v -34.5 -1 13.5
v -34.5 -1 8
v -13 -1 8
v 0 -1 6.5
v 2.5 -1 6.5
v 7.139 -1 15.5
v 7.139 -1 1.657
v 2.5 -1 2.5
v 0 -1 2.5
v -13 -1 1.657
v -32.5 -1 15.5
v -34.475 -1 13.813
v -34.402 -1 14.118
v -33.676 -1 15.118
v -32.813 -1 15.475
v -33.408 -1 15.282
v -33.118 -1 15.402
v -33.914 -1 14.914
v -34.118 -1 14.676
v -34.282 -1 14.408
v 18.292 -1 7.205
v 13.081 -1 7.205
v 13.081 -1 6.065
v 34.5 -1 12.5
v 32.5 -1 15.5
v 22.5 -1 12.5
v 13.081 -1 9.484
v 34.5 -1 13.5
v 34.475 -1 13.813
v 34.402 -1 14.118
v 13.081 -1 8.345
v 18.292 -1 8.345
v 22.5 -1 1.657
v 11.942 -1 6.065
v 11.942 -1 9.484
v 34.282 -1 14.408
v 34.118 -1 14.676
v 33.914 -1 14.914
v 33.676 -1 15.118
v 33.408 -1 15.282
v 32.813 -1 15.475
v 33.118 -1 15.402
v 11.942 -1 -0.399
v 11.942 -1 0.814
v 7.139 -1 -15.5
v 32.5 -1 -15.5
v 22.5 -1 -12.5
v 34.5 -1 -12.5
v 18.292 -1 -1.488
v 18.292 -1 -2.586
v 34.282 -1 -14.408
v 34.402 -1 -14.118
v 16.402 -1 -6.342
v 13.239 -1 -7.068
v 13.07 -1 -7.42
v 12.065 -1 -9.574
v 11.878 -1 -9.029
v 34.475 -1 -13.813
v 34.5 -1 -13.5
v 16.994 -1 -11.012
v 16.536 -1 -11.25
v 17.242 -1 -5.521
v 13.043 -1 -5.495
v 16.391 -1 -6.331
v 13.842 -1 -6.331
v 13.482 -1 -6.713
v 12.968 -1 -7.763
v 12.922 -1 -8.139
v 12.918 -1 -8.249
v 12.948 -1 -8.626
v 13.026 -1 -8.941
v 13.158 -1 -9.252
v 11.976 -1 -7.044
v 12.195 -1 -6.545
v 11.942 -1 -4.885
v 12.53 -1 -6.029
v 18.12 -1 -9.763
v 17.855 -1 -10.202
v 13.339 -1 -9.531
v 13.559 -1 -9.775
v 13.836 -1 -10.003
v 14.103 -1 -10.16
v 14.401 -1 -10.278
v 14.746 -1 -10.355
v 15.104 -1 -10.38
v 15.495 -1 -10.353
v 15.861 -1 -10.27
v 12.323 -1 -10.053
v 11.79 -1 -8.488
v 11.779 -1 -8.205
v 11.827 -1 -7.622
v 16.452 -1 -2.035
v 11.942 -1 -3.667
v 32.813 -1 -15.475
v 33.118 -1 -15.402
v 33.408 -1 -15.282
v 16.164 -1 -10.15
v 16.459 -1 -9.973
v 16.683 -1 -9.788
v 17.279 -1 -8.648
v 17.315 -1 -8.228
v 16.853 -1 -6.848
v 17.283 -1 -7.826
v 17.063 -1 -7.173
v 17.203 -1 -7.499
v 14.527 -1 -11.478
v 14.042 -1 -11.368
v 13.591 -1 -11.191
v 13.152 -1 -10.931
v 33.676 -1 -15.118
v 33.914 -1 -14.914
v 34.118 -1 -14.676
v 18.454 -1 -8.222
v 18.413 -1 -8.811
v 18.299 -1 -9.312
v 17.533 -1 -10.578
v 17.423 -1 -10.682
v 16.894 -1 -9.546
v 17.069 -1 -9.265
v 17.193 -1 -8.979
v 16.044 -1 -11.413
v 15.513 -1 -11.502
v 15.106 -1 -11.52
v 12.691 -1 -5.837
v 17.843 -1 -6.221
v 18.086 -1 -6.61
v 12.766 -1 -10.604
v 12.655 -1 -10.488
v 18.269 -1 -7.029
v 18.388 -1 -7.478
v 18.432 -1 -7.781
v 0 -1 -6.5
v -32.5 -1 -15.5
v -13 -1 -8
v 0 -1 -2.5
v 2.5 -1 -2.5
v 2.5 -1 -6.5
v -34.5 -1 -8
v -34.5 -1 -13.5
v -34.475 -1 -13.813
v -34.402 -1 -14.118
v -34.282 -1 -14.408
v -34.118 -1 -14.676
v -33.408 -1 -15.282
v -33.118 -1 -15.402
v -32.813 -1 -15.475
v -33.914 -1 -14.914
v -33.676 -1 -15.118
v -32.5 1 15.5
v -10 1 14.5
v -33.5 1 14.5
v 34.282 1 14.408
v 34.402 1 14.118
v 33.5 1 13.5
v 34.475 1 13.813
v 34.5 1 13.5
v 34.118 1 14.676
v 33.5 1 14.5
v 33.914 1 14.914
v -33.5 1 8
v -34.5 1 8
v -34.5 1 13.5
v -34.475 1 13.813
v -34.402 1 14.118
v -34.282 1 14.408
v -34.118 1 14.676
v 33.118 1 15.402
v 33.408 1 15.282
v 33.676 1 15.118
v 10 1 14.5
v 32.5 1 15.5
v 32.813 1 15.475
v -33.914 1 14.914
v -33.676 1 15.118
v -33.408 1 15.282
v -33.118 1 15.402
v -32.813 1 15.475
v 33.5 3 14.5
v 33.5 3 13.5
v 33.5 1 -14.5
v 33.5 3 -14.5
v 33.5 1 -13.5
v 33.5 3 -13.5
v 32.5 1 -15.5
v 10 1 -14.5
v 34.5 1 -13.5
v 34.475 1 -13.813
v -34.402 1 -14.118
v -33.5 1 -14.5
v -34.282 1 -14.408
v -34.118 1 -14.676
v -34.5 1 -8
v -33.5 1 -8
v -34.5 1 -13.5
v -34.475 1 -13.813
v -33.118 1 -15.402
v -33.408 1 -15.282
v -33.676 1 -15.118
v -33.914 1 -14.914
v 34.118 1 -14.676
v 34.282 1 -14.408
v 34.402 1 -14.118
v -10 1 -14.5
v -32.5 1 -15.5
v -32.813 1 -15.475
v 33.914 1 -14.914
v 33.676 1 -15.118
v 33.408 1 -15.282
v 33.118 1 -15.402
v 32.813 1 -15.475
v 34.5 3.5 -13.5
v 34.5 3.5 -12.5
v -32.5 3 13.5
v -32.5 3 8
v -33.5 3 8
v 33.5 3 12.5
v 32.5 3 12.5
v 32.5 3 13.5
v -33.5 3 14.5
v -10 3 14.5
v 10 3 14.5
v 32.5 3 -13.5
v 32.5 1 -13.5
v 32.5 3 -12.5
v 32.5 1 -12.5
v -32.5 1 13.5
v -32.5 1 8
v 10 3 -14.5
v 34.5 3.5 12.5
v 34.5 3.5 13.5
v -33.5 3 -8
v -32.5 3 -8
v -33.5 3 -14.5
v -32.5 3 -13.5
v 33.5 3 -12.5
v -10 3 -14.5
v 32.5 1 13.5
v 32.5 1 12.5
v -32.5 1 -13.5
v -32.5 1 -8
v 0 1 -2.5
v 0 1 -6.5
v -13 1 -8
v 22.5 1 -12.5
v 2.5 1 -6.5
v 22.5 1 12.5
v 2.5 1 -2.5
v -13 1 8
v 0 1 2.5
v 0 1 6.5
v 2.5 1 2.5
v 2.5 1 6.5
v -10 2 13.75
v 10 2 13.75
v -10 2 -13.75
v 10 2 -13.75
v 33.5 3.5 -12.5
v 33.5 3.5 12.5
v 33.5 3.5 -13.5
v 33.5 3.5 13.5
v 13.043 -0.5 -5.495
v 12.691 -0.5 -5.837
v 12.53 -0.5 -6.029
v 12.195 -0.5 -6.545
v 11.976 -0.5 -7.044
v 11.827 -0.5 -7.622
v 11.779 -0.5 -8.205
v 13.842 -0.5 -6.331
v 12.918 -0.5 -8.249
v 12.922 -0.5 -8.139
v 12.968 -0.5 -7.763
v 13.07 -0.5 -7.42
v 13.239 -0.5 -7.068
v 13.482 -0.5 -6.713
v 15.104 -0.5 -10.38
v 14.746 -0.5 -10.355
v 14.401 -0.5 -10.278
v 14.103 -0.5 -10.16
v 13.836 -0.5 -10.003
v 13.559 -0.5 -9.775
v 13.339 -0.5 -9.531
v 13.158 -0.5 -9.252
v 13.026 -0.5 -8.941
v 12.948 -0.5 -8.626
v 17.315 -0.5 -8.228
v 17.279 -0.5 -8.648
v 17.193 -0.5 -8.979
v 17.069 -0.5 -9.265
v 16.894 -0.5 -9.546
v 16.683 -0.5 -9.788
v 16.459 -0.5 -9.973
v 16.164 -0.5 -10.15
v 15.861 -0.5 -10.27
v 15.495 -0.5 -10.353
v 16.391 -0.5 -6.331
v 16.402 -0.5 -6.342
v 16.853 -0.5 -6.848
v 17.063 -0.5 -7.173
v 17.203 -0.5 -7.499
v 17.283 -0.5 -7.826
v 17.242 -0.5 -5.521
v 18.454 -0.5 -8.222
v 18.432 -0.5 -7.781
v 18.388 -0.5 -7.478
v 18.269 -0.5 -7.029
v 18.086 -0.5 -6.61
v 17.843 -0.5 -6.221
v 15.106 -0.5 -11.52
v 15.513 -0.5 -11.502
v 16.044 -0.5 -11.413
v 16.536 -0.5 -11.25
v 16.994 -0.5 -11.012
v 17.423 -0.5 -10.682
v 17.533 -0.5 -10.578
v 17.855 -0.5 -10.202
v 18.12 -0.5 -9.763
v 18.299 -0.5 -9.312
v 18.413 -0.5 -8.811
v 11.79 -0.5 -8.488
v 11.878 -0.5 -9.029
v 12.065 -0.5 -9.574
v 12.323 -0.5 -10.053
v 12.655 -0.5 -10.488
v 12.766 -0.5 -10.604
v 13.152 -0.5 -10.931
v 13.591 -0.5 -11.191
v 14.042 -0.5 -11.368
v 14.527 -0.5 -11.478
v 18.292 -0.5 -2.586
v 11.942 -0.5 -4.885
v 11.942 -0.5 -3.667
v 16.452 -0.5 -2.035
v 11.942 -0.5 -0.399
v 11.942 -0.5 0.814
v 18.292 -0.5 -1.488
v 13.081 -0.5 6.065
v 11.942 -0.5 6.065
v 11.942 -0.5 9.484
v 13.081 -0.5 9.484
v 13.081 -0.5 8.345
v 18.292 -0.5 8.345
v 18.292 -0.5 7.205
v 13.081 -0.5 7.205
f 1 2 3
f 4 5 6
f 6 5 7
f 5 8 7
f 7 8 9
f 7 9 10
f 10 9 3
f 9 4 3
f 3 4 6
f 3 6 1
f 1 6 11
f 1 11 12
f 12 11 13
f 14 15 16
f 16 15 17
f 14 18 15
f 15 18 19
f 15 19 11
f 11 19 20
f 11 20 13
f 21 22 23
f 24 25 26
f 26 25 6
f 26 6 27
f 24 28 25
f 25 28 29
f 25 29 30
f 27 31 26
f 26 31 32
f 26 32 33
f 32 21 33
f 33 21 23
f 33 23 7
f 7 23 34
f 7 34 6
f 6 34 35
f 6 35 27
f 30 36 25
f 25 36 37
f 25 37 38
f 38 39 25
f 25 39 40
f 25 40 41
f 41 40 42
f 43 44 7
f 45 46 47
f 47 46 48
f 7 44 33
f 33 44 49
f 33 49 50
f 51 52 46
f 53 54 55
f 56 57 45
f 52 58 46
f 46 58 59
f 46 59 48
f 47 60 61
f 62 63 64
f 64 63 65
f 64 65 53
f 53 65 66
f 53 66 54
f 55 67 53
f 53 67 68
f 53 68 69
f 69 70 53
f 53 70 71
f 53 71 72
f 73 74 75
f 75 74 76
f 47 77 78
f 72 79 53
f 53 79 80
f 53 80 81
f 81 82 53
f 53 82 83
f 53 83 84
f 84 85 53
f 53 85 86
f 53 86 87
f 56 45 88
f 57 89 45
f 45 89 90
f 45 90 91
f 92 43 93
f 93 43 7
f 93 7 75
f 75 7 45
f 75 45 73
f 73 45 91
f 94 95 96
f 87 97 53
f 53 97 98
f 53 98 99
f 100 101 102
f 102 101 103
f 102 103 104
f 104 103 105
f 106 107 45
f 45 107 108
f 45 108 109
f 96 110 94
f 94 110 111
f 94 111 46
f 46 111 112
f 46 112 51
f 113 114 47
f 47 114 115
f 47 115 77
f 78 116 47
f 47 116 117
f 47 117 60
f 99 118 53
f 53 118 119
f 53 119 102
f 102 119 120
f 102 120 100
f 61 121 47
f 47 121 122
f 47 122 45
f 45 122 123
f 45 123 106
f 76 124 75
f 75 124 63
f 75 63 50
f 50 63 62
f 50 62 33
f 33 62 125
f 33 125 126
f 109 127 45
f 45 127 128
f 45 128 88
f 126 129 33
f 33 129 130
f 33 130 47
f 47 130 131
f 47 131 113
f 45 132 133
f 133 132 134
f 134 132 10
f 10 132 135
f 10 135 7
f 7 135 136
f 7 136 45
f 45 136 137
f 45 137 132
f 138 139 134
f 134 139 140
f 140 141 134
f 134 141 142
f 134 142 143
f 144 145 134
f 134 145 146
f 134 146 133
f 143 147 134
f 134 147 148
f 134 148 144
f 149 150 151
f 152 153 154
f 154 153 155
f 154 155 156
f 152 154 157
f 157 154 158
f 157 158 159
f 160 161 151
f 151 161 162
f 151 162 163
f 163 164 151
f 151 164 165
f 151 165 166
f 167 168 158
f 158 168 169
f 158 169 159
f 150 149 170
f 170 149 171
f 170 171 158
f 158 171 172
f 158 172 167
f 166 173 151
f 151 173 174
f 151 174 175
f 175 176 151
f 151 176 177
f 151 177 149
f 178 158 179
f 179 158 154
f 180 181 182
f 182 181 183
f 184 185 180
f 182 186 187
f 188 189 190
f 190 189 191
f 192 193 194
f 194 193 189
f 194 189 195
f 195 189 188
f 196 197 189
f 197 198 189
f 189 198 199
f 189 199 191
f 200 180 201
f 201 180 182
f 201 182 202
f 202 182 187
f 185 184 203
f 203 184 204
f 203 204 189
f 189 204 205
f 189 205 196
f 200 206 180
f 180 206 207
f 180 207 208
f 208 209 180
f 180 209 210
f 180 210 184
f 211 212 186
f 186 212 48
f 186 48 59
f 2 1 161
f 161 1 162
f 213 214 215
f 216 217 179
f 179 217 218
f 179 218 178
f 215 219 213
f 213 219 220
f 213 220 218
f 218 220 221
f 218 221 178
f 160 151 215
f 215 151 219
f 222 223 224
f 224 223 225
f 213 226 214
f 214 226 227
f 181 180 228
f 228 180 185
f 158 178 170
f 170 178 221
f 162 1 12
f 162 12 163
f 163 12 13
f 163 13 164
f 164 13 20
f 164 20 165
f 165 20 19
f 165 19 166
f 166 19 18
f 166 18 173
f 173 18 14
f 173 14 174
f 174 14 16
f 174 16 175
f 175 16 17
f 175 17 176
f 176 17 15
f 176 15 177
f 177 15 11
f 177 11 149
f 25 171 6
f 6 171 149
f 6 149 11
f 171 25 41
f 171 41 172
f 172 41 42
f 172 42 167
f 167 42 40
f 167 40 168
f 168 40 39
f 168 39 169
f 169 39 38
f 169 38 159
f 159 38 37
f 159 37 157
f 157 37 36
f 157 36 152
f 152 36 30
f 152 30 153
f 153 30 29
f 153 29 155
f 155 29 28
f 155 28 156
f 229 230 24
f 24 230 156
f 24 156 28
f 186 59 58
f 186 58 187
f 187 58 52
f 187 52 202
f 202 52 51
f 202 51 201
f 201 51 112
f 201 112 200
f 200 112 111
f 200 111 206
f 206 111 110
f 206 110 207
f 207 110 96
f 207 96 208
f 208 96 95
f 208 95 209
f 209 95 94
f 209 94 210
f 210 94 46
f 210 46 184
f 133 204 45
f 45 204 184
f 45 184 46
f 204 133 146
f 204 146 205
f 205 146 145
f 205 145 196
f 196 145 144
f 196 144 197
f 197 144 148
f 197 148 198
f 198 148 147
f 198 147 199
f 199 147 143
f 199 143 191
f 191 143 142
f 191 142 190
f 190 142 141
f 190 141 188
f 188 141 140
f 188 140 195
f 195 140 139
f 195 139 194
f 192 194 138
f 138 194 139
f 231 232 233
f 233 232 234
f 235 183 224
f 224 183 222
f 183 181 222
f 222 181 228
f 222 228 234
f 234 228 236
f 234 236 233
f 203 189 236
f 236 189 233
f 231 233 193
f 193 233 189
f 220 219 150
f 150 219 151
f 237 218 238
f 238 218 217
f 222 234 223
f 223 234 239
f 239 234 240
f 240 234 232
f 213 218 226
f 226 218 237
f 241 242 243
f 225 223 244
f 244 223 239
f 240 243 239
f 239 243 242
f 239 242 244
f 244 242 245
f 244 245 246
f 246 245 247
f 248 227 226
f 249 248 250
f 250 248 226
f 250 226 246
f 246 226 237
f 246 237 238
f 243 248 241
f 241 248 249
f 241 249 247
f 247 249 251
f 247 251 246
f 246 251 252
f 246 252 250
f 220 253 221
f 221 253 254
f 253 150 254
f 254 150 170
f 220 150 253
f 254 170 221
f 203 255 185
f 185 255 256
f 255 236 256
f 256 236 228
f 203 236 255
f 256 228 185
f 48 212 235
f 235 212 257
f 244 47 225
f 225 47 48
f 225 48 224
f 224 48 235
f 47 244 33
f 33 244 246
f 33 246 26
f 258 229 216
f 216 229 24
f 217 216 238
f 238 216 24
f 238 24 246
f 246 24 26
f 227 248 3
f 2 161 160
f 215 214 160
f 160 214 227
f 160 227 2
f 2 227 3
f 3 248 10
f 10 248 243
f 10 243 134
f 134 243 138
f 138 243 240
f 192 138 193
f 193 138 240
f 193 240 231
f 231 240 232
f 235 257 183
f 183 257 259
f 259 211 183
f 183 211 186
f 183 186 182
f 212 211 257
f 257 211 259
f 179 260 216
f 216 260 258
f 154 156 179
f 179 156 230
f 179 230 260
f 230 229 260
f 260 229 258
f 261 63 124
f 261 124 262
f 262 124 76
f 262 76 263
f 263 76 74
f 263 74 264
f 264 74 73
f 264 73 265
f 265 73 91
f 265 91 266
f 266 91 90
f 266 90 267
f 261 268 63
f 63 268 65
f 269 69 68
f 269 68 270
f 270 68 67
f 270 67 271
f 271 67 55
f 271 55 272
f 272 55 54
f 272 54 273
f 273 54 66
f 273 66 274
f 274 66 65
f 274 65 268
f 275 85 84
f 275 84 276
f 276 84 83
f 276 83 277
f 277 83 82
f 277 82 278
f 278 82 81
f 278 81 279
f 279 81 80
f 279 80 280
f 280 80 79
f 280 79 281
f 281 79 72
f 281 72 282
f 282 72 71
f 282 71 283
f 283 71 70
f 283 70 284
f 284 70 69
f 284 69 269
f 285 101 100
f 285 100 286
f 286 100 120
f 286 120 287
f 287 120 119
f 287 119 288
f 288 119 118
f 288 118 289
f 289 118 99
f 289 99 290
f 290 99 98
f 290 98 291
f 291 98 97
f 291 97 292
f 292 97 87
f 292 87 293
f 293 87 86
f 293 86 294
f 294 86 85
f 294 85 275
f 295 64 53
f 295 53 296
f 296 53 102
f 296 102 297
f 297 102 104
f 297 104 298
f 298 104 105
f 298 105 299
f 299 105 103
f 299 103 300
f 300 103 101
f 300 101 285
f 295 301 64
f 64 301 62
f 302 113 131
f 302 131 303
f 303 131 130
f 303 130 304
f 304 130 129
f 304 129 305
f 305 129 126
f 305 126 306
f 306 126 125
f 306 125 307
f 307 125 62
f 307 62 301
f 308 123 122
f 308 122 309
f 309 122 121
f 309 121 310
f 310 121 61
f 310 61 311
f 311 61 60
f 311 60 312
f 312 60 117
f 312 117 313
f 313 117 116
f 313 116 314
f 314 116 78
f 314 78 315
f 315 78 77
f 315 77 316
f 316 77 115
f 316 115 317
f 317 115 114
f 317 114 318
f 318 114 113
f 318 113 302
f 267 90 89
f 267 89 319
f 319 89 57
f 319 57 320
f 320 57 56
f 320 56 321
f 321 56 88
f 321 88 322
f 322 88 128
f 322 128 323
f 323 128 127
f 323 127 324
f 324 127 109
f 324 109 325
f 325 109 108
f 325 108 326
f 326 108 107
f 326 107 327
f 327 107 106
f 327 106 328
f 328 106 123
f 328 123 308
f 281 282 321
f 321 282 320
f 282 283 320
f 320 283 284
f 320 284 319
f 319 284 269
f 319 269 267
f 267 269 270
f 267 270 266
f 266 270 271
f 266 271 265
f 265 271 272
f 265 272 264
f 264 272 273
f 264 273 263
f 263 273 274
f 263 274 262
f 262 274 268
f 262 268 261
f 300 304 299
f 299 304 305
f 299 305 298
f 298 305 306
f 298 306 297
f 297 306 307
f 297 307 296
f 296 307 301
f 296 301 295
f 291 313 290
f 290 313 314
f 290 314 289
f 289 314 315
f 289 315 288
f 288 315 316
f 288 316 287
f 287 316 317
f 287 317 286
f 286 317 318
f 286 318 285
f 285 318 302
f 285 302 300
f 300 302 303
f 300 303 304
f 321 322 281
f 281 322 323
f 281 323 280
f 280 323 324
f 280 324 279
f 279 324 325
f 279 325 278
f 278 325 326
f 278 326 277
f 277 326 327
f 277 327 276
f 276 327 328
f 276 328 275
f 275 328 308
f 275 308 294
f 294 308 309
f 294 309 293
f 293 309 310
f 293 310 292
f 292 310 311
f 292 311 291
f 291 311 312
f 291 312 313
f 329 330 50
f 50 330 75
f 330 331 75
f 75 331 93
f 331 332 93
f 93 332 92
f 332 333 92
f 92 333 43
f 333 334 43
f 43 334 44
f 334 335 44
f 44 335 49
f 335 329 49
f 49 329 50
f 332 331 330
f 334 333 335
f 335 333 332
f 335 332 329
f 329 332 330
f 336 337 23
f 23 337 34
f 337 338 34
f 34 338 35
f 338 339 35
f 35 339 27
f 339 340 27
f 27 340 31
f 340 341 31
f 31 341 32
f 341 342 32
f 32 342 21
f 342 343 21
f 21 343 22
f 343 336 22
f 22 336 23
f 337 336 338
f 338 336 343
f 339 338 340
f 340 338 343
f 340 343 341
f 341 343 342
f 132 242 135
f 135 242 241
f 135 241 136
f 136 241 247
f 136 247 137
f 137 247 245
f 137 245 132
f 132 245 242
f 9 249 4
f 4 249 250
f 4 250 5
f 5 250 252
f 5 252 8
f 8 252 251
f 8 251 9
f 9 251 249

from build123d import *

# Parameters (mm, degrees)
BOSS_EXTRUDE1_DEPTH = 1
SKETCH3_W           = 67
SKETCH3_H           = 29
SKETCH3_W_2         = 65
SKETCH3_H_2         = 27
BOSS_EXTRUDE2_DEPTH = 2
CUT_EXTRUDE1_DEPTH  = 10
SKETCH7_W           = 21.5
SKETCH7_H           = 16
SKETCH7_W_2         = 12
SKETCH7_H_2         = 25
CUT_EXTRUDE2_DEPTH  = 20
SKETCH11_W          = 1
SKETCH11_H          = 1
BOSS_EXTRUDE5_DEPTH = 2.5
CUT_EXTRUDE3_DEPTH  = 0.5
SKETCH13_W          = 2.5
SKETCH13_H          = 4
CUT_EXTRUDE4_DEPTH  = 39.08871237


with BuildPart() as part:
    # Sketch1 → Boss-Extrude1 (new, symmetric)
    with BuildSketch(Plane(origin=(0, 0, 0), x_dir=(1, 0, 0), z_dir=(0, 1, 0))):
        with BuildLine():
            Line((-32.5, -15.5), (32.5, -15.5))
            ThreePointArc((32.5, -15.5), (33.914213562, -14.914213562), (34.5, -13.5))
            Line((34.5, -13.5), (34.5, 13.5))
            ThreePointArc((34.5, 13.5), (33.914213562, 14.914213562), (32.5, 15.5))
            Line((32.5, 15.5), (-32.5, 15.5))
            ThreePointArc((-32.5, 15.5), (-33.914213562, 14.914213562), (-34.5, 13.5))
            Line((-34.5, 13.5), (-34.5, -13.5))
            ThreePointArc((-34.5, -13.5), (-33.914213562, -14.914213562), (-32.5, -15.5))
        make_face()
    extrude(amount=BOSS_EXTRUDE1_DEPTH, both=True)

    # Sketch3 → Boss-Extrude2 (add)
    with BuildSketch(Plane(origin=(0, 1, 0), x_dir=(1, 0, 0), z_dir=(0, 1, 0))):
        Rectangle(SKETCH3_W, SKETCH3_H)
        Rectangle(SKETCH3_W_2, SKETCH3_H_2, mode=Mode.SUBTRACT)
    extrude(amount=BOSS_EXTRUDE2_DEPTH)

    # Sketch6 → Cut-Extrude1 (cut, symmetric)
    with BuildSketch(Plane(origin=(0, 0, 0), x_dir=(0, 0, -1), z_dir=(1, 0, 0))):
        Polygon((14.5, 1), (14.5, 3), (13.75, 2), align=None)
        Polygon((-13.75, 2), (-14.5, 1), (-14.5, 3), align=None)
    extrude(amount=CUT_EXTRUDE1_DEPTH, both=True, mode=Mode.SUBTRACT)

    # Sketch7 → Cut-Extrude2 (cut)
    with BuildSketch(Plane.XZ.offset(1)):
        with Locations((-23.75, 0)):
            Rectangle(SKETCH7_W, SKETCH7_H)
        with Locations((28.5, 0)):
            Rectangle(SKETCH7_W_2, SKETCH7_H_2)
    extrude(amount=-CUT_EXTRUDE2_DEPTH, mode=Mode.SUBTRACT)

    # Sketch11 → Boss-Extrude5 (add)
    with BuildSketch(Plane(origin=(0, 1, 0), x_dir=(1, 0, 0), z_dir=(0, 1, 0))):
        with Locations((34, 13)):
            Rectangle(SKETCH11_W, SKETCH11_H)
        with Locations((34, -13)):
            Rectangle(SKETCH11_W, SKETCH11_H)
    extrude(amount=BOSS_EXTRUDE5_DEPTH)

    # Sketch12 → Cut-Extrude3 (cut)
    with BuildSketch(Plane.XZ.offset(1)):
        Polygon((11.941533437, 6.065064103), (11.941533437, 9.484294872), (13.081277027, 9.484294872), (13.081277027, 8.344551282), (18.291533437, 8.344551282), (18.291533437, 7.204807692), (13.081277027, 7.204807692), (13.081277027, 6.065064103), align=None)
        Polygon((11.941533437, -4.884615385), (11.941533437, -3.667277644), (16.452170457, -2.03525641), (11.941533437, -0.399419071), (11.941533437, 0.814102564), (18.291533437, -1.48828125), (18.291533437, -2.586047676), align=None)
        with BuildLine():
            Line((13.043115969, -5.495192308), (13.84195411, -6.330919471))
            add(Edge.make_bspline(
                [(13.84195411, -6.330919471), (13.768637735, -6.401806055), (13.625427884, -6.540269761), (13.436040425, -6.763499644), (13.277548365, -6.995057512), (13.146745209, -7.232632751), (13.043791904, -7.47669033), (12.970992617, -7.72804876), (12.926114938, -7.986340764), (12.921019422, -8.161199427), (12.918456514, -8.249148638)],
                knots=[0, 0, 0, 0, 1.115315123, 2.178559852, 3.196385012, 4.180486591, 5.141138664, 6.08807191, 7.038351522, 8, 8, 8, 8], degree=3))
            add(Edge.make_bspline(
                [(12.918456514, -8.249148638), (12.920487286, -8.322594137), (12.92449479, -8.467530739), (12.953944547, -8.680315542), (13.00383624, -8.883932376), (13.07318533, -9.078542785), (13.160519089, -9.265108945), (13.270291327, -9.441893594), (13.398838264, -9.609846789), (13.545934957, -9.767006139), (13.707838119, -9.908887036), (13.878351171, -10.03672374), (14.060490077, -10.142609994), (14.251598692, -10.229044823), (14.451746028, -10.297157456), (14.660922066, -10.345499724), (14.879599088, -10.373509267), (15.028259493, -10.377685306), (15.103813085, -10.379807692)],
                knots=[0, 0, 0, 0, 1.035268443, 2.04298821, 3.02163646, 3.985902049, 4.951223231, 5.920091634, 6.913651787, 7.92868536, 8.949353712, 9.945284791, 10.92850487, 11.913014323, 12.897904816, 13.904240668, 14.934873455, 16, 16, 16, 16], degree=3))
            add(Edge.make_bspline(
                [(15.103813085, -10.379807692), (15.156840057, -10.379186533), (15.261357308, -10.377962216), (15.415574733, -10.364925614), (15.565507754, -10.343215337), (15.710796025, -10.312972773), (15.851629254, -10.274204313), (15.988337217, -10.229420059), (16.119289945, -10.172219135), (16.24693936, -10.109298874), (16.368212678, -10.036911087), (16.483189742, -9.95764624), (16.591896287, -9.872234836), (16.693945792, -9.779536195), (16.787869185, -9.678383039), (16.876223869, -9.571218373), (16.957616144, -9.456977598), (17.030749894, -9.335614926), (17.098918302, -9.210802926), (17.155368302, -9.07997032), (17.206114124, -8.94677674), (17.244290102, -8.808884538), (17.277495177, -8.66872294), (17.29777454, -8.524340956), (17.313184177, -8.377108845), (17.31413292, -8.277600269), (17.31461036, -8.227524038)],
                knots=[0, 0, 0, 0, 1.103738238, 2.175490744, 3.219137561, 4.256155604, 5.262629953, 6.259184223, 7.247888397, 8.234817694, 9.220364322, 10.185094651, 11.140491148, 12.096499151, 13.05201798, 14.011605636, 14.986460005, 15.968997565, 16.960259839, 17.944382265, 18.933125845, 19.924977513, 20.920749559, 21.929466621, 22.958034467, 24, 24, 24, 24], degree=3))
            add(Edge.make_bspline(
                [(17.31461036, -8.227524038), (17.312162797, -8.142583361), (17.307353971, -7.975697017), (17.269475061, -7.730825721), (17.207829637, -7.497111584), (17.132929858, -7.311049721), (17.060303901, -7.165191721), (16.995016409, -7.053220916), (16.919750327, -6.938662767), (16.834193119, -6.821691737), (16.738718629, -6.701628906), (16.631461316, -6.58046115), (16.51588805, -6.45512538), (16.43340391, -6.373017633), (16.391112764, -6.330919471)],
                knots=[0, 0, 0, 0, 1.404693586, 2.759857621, 4.088769373, 5.395275838, 6.0697462, 6.783214465, 7.53810233, 8.336454657, 9.18000028, 10.074808326, 11.012918585, 12, 12, 12, 12], degree=3))
            Line((16.391112764, -6.330919471), (17.242104351, -5.520633013))
            add(Edge.make_bspline(
                [(17.242104351, -5.520633013), (17.297096261, -5.577591789), (17.404428711, -5.68876314), (17.556830773, -5.856462037), (17.693780967, -6.023949878), (17.820249986, -6.187180506), (17.93255348, -6.348827808), (18.030803608, -6.508874644), (18.117485256, -6.665509211), (18.191136583, -6.821984078), (18.253674209, -6.979272912), (18.307515, -7.141104638), (18.353062372, -7.307973991), (18.38981312, -7.480900133), (18.419282258, -7.658270114), (18.439173756, -7.841743881), (18.452546148, -8.030158121), (18.453747768, -8.157962419), (18.45435395, -8.222435897)],
                knots=[0, 0, 0, 0, 1.244526981, 2.429050516, 3.560637417, 4.644440555, 5.67424972, 6.652764056, 7.595344123, 8.486817594, 9.369275933, 10.254498637, 11.166417451, 12.086725134, 13.032340136, 13.991389299, 14.986715468, 16, 16, 16, 16], degree=3))
            add(Edge.make_bspline(
                [(18.45435395, -8.222435897), (18.451334939, -8.340865691), (18.445427572, -8.572599876), (18.401657986, -8.912200283), (18.328279045, -9.234811554), (18.224500984, -9.541218541), (18.091929374, -9.831323814), (17.929402805, -10.105053156), (17.737353086, -10.361965375), (17.518031224, -10.599985126), (17.275808639, -10.815285319), (17.015728035, -11.005585757), (16.736511209, -11.163002287), (16.442283088, -11.293708623), (16.131700993, -11.395919259), (15.804428969, -11.467858219), (15.460783018, -11.51222245), (15.226064912, -11.51707596), (15.106357155, -11.519551282)],
                knots=[0, 0, 0, 0, 1.078019885, 2.10938526, 3.111377082, 4.085535484, 5.04941344, 6.010039228, 6.978205633, 7.964457913, 8.951525778, 9.924444315, 10.892603023, 11.863865945, 12.85144698, 13.863884204, 14.910567087, 16, 16, 16, 16], degree=3))
            add(Edge.make_bspline(
                [(15.106357155, -11.519551282), (15.028282903, -11.518515641), (14.873558818, -11.516463254), (14.645252317, -11.494488037), (14.422973185, -11.464639878), (14.208620877, -11.415608228), (13.999755502, -11.358606766), (13.798225395, -11.285168838), (13.603181636, -11.199848512), (13.414870564, -11.102428539), (13.235325687, -10.990848613), (13.063401988, -10.869367728), (12.901326556, -10.735039657), (12.748431173, -10.589223971), (12.602984036, -10.433268126), (12.468562175, -10.264501174), (12.341559366, -10.085801372), (12.225763331, -9.895930835), (12.120448829, -9.699216136), (12.029843958, -9.496613136), (11.952101659, -9.290733703), (11.888096138, -9.080953584), (11.840190071, -8.866901839), (11.803961981, -8.650012752), (11.783702598, -8.428465968), (11.780386745, -8.279715595), (11.778712925, -8.204627404)],
                knots=[0, 0, 0, 0, 1.071814294, 2.12407397, 3.147667899, 4.14936388, 5.141177959, 6.119239245, 7.091825145, 8.063277363, 9.028022524, 9.992609517, 10.952139039, 11.915934802, 12.892469547, 13.878248468, 14.87668965, 15.901326483, 16.93027266, 17.938917451, 18.9468897, 19.950817235, 20.948103127, 21.957084021, 22.968749718, 24, 24, 24, 24], degree=3))
            add(Edge.make_bspline(
                [(11.778712925, -8.204627404), (11.779673395, -8.140569838), (11.781584349, -8.013120728), (11.797486076, -7.823322383), (11.822530484, -7.635062735), (11.860053114, -7.448916668), (11.905494747, -7.264047093), (11.961466571, -7.081228011), (12.029739078, -6.900963551), (12.105262879, -6.721690962), (12.191242805, -6.546985568), (12.287480484, -6.37836568), (12.391458247, -6.215413485), (12.504964528, -6.059111316), (12.626332067, -5.908358268), (12.755556847, -5.763315194), (12.894982972, -5.625373889), (12.993488679, -5.538805542), (13.043115969, -5.495192308)],
                knots=[0, 0, 0, 0, 0.996333415, 1.982307736, 2.96084097, 3.949129141, 4.93457382, 5.921430247, 6.92116383, 7.931890485, 8.946633814, 9.948019707, 10.950686436, 11.952094051, 12.951305284, 13.960287133, 14.972390273, 16, 16, 16, 16], degree=3))
        make_face()
    extrude(amount=-CUT_EXTRUDE3_DEPTH, mode=Mode.SUBTRACT)

    # Sketch13 → Cut-Extrude4 (cut, through all)
    with BuildSketch(Plane.XZ.offset(1)):
        with Locations((1.25, 4.5)):
            Rectangle(SKETCH13_W, SKETCH13_H)
        with Locations((1.25, -4.5)):
            Rectangle(SKETCH13_W, SKETCH13_H)
    extrude(amount=-CUT_EXTRUDE4_DEPTH, mode=Mode.SUBTRACT)


solid = part.part
